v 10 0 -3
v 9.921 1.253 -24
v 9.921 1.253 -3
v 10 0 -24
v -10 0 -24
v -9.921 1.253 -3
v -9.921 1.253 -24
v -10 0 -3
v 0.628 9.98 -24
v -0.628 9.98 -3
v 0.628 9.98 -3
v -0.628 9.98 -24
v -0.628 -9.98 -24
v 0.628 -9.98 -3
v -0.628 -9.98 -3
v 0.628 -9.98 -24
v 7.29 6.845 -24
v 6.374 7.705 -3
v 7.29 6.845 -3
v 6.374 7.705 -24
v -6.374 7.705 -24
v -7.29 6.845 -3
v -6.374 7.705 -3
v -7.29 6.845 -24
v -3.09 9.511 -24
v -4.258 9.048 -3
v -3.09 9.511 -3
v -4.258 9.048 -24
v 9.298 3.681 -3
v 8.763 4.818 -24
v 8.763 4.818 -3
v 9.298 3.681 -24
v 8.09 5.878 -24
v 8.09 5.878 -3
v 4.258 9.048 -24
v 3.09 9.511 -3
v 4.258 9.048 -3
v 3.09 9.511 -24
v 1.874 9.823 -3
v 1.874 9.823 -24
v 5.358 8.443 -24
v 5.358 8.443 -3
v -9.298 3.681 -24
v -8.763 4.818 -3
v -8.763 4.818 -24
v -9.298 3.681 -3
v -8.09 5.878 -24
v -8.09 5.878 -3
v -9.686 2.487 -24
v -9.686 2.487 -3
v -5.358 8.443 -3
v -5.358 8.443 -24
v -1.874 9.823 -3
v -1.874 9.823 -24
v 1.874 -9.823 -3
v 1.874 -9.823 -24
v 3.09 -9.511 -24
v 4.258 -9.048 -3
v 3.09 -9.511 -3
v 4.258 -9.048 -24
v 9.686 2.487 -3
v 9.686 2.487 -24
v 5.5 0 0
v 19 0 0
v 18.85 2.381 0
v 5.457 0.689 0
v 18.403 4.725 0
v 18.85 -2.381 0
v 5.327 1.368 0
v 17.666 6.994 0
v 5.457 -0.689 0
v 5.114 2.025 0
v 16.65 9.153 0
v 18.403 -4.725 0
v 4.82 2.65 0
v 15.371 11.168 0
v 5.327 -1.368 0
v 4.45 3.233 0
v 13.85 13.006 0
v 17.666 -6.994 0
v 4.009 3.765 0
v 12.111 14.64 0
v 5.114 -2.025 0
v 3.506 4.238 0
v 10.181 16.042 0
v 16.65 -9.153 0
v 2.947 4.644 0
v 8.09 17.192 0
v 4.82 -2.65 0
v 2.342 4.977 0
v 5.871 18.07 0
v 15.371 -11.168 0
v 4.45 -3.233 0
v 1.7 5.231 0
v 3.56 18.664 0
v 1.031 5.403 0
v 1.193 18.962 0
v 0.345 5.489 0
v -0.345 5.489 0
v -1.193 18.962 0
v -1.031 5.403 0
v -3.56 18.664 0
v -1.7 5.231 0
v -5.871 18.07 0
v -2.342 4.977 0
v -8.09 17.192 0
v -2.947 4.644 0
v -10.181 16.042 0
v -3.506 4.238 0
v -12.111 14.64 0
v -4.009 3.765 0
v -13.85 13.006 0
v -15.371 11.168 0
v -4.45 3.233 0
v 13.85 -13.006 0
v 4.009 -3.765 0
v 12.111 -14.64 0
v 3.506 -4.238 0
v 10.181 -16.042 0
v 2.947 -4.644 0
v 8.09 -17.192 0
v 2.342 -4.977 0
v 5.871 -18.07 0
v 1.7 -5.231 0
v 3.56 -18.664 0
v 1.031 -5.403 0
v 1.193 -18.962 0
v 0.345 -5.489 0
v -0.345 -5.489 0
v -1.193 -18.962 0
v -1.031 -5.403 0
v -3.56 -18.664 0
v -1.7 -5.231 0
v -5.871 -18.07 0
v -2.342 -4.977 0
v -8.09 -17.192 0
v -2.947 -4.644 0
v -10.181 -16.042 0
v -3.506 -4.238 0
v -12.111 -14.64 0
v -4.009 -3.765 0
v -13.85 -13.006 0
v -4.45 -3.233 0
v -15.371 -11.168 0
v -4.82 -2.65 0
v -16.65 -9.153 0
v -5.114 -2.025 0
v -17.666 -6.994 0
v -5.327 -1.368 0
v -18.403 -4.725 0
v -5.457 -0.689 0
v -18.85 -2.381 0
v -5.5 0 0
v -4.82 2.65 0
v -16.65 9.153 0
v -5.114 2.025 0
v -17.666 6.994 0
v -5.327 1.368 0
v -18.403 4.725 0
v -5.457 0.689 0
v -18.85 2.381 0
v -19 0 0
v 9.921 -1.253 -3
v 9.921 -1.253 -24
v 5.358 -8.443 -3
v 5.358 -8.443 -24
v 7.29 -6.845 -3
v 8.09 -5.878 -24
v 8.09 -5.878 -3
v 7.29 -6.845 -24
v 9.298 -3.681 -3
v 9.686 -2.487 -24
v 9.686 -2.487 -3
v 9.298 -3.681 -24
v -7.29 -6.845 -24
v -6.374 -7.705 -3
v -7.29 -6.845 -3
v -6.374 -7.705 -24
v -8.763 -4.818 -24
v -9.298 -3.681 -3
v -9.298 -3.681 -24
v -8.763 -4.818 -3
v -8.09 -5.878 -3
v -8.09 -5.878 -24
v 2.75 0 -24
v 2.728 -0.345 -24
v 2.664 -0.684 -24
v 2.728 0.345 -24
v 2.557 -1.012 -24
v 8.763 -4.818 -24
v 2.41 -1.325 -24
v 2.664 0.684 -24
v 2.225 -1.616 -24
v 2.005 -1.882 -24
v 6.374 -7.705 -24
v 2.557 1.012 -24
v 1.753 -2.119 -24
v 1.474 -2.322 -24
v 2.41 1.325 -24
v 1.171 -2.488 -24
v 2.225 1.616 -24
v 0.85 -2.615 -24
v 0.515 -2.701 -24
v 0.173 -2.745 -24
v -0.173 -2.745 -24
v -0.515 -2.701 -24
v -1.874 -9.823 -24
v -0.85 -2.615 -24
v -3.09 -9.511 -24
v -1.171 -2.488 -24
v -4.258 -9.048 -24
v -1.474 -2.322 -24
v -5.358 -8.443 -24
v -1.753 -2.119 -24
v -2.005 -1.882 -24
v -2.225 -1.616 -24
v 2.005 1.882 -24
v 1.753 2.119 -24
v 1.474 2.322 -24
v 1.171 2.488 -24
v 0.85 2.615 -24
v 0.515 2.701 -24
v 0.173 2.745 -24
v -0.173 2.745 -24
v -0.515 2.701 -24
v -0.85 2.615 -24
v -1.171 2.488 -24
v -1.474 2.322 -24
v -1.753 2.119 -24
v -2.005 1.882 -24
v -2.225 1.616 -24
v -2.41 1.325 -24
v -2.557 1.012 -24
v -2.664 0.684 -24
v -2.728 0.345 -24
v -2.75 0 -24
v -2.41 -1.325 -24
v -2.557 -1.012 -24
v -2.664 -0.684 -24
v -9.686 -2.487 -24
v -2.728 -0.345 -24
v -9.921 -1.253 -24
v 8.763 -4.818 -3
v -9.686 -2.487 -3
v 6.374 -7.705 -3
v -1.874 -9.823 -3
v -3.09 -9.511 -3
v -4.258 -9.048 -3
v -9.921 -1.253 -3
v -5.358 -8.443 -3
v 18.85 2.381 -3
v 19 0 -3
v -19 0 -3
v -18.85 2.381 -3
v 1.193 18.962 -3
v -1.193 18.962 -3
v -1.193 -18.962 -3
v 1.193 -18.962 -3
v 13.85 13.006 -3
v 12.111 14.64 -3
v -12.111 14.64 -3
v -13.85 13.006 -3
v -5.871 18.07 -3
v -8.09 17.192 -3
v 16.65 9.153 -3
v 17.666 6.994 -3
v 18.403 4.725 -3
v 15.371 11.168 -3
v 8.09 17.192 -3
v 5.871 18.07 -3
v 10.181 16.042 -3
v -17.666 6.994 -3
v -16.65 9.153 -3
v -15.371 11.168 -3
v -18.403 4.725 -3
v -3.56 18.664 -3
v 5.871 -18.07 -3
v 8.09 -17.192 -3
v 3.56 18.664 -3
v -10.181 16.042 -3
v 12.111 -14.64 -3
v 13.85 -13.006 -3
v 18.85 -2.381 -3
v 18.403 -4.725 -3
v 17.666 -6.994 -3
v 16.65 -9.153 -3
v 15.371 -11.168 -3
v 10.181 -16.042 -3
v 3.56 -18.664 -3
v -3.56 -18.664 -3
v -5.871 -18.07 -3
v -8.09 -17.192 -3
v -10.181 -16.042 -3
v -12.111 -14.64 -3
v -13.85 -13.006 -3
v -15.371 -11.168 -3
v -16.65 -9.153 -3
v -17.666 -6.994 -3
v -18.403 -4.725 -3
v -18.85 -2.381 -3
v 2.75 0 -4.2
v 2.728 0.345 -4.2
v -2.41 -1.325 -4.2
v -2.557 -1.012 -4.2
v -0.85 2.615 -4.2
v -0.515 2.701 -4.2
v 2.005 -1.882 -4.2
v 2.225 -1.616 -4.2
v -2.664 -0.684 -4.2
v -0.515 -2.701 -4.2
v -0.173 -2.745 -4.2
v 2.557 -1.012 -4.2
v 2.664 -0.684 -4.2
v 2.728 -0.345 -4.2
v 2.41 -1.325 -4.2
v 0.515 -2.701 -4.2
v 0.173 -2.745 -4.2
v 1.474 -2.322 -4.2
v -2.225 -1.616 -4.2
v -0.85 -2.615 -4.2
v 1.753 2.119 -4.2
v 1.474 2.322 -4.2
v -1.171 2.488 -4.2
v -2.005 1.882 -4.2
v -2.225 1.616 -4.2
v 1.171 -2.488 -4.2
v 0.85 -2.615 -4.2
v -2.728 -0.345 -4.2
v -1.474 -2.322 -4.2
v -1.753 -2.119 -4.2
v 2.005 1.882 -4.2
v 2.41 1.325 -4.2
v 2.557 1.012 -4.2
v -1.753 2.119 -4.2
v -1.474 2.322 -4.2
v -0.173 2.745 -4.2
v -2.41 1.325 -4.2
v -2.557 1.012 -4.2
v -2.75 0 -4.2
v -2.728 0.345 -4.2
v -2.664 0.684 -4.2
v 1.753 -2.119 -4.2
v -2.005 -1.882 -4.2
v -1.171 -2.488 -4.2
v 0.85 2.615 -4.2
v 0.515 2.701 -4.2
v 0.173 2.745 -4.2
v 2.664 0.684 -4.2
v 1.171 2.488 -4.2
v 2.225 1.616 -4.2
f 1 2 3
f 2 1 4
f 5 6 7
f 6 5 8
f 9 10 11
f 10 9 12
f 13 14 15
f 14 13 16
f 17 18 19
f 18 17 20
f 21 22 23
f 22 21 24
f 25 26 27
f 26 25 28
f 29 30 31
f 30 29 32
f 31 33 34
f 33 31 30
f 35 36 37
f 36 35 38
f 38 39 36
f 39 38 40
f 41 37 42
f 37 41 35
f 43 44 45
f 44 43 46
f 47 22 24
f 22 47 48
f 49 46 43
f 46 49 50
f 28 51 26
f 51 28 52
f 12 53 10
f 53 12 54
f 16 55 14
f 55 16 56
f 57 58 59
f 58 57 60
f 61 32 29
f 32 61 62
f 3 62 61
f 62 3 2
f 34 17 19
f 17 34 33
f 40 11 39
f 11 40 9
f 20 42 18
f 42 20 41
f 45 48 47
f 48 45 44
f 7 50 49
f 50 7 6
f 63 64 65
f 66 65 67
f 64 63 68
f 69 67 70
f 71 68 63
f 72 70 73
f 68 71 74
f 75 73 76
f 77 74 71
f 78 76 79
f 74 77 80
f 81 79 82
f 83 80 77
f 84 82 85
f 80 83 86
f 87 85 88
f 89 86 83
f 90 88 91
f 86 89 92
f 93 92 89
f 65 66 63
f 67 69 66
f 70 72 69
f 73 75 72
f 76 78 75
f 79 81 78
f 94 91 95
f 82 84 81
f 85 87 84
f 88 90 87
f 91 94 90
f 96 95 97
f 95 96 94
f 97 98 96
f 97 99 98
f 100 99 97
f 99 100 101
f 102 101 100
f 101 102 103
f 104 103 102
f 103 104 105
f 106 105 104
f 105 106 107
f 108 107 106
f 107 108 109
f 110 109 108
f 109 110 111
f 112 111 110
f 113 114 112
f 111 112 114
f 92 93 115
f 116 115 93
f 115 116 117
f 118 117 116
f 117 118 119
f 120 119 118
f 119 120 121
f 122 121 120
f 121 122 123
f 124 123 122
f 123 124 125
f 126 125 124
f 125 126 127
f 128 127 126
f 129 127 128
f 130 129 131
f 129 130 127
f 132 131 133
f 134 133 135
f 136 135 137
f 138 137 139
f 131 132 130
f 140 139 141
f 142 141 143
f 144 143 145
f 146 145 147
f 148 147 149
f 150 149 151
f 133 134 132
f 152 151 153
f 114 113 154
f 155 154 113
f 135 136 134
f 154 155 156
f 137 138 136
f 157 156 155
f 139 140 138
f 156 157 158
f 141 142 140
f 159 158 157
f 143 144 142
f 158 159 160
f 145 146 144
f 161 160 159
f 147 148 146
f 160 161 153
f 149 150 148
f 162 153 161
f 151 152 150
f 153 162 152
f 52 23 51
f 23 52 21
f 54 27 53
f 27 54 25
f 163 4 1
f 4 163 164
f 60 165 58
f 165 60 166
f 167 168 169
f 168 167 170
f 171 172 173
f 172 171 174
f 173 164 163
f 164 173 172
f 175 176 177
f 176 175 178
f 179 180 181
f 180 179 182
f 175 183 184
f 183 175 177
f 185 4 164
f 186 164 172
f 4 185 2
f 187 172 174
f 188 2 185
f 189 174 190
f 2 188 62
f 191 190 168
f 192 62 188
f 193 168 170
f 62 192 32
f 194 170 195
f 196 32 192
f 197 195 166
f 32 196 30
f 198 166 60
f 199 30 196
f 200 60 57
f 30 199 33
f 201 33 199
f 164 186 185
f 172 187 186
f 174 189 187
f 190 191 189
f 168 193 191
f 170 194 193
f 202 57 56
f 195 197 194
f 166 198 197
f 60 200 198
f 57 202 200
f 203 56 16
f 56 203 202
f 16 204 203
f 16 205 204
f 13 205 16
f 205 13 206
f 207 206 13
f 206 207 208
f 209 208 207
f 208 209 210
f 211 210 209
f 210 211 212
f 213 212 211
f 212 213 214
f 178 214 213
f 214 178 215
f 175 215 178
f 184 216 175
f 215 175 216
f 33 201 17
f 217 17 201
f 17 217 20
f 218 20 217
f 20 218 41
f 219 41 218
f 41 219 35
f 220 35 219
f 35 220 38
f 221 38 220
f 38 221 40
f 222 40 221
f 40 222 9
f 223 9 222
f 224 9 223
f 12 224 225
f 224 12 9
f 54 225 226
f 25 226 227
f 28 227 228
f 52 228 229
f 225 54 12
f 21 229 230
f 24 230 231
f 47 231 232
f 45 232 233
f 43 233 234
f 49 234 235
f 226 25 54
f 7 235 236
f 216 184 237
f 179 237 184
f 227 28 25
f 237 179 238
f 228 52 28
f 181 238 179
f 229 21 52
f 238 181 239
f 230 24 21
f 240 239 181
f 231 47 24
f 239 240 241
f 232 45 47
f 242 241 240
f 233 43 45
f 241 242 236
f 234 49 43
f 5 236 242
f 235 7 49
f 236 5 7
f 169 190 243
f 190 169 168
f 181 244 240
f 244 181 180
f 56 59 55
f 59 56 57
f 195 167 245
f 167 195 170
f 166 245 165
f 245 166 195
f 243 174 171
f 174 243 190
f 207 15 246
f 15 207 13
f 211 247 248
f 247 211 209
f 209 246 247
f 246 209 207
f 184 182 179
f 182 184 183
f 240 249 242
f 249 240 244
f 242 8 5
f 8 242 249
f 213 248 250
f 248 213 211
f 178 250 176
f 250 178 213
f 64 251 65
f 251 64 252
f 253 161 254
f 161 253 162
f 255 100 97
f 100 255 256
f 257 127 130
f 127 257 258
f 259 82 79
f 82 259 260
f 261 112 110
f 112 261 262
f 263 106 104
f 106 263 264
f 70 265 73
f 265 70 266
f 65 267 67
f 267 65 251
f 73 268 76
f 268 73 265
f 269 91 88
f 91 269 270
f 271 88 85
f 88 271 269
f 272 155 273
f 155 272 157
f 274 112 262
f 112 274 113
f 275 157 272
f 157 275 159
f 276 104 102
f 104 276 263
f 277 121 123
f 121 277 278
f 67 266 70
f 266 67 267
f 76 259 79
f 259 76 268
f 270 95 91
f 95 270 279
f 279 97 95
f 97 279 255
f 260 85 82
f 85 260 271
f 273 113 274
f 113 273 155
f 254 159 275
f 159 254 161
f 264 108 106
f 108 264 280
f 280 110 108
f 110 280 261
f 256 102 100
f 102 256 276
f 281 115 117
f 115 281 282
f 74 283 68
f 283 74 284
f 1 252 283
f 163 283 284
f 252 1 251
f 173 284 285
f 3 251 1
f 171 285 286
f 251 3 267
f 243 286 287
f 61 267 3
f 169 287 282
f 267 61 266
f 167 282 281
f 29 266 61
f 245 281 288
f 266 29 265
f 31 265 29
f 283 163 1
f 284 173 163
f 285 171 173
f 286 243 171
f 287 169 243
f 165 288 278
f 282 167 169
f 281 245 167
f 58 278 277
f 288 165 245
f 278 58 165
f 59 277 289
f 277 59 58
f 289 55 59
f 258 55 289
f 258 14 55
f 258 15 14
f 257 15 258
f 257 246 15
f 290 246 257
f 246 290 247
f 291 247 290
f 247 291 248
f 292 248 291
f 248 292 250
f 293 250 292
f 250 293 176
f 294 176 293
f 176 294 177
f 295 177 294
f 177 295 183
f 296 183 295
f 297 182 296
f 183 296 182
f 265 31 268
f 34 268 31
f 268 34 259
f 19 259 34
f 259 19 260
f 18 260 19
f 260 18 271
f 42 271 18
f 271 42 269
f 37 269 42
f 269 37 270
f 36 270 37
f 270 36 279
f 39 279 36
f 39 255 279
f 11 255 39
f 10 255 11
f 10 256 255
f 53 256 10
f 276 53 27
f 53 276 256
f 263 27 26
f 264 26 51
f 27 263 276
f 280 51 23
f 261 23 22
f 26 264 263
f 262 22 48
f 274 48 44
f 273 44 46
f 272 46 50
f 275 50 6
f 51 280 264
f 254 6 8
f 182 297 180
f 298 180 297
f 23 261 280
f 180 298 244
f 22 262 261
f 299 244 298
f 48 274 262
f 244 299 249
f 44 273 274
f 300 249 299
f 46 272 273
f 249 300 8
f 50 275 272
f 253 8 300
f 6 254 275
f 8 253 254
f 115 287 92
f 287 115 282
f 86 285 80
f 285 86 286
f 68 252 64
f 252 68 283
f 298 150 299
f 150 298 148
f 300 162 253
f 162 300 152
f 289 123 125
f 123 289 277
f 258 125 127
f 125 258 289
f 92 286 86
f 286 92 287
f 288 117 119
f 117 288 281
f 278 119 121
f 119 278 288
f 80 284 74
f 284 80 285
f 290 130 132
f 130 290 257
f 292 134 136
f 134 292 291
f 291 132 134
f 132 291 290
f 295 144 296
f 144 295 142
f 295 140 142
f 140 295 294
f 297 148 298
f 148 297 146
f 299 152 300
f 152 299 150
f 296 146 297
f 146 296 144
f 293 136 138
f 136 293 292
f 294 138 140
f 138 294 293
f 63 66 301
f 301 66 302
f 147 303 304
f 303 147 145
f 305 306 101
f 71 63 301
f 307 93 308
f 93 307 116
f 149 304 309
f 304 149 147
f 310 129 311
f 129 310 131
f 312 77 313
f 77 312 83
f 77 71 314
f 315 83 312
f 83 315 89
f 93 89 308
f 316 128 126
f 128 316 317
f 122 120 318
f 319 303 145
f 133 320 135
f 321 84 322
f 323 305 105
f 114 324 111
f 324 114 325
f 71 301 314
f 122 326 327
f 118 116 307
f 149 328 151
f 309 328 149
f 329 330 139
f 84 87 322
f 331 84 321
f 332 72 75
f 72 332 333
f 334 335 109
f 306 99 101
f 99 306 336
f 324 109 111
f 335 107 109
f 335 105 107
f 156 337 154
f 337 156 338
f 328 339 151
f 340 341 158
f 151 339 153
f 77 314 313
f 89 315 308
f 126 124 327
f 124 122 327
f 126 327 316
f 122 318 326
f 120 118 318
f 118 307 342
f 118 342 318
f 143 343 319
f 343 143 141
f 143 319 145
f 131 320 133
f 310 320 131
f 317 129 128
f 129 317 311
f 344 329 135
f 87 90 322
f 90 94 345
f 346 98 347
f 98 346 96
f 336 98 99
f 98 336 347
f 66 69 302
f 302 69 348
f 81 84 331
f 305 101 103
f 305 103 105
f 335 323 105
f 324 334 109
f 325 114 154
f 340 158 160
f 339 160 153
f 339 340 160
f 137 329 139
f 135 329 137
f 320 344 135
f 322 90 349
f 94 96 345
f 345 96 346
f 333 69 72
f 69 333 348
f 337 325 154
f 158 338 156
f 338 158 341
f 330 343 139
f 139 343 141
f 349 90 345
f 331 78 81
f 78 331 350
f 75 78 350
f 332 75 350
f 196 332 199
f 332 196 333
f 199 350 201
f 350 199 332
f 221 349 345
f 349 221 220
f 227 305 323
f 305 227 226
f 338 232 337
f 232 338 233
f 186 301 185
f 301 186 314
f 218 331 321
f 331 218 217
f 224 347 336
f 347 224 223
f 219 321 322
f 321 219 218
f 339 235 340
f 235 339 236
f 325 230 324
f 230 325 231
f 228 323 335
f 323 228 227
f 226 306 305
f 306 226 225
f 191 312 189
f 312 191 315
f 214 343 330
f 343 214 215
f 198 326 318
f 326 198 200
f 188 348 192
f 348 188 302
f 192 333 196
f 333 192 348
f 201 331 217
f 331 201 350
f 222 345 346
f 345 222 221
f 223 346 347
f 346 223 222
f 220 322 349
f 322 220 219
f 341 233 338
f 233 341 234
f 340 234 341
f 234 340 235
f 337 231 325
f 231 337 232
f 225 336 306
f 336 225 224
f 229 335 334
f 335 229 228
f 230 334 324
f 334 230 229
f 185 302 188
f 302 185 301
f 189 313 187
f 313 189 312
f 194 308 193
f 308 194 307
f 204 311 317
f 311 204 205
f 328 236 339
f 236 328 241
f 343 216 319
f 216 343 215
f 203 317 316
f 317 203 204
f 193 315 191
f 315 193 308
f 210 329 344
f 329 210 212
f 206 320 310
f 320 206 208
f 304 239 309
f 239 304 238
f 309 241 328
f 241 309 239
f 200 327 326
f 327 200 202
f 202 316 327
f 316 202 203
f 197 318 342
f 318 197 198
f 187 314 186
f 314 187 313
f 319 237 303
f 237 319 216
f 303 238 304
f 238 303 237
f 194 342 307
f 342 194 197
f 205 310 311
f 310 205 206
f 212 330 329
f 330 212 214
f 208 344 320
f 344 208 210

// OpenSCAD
$fn = 50;


difference() {
	union() {
		translate(v = [0, 0, -24.0000000000]) {
			cylinder(h = 24, r = 10.0000000000);
		}
		translate(v = [0, 0, -3.0000000000]) {
			cylinder(h = 3, r = 19.0000000000);
		}
	}
	union() {
		translate(v = [0, 0, 0]) {
			rotate(a = [0, 0, 0]) {
				difference() {
					union() {
						#translate(v = [0, 0, -24.0000000000]) {
							cylinder(h = 24, r = 2.2500000000);
						}
						#translate(v = [0, 0, -4.2000000000]) {
							cylinder(h = 4.2000000000, r = 10.0000000000, r1 = 2.7500000000, r2 = 5.5000000000);
						}
						#translate(v = [0, 0, -24.0000000000]) {
							cylinder(h = 24, r = 2.7500000000);
						}
						#translate(v = [0, 0, -24.0000000000]) {
							cylinder(h = 24, r = 2.2500000000);
						}
					}
					union();
				}
			}
		}
	}
}
